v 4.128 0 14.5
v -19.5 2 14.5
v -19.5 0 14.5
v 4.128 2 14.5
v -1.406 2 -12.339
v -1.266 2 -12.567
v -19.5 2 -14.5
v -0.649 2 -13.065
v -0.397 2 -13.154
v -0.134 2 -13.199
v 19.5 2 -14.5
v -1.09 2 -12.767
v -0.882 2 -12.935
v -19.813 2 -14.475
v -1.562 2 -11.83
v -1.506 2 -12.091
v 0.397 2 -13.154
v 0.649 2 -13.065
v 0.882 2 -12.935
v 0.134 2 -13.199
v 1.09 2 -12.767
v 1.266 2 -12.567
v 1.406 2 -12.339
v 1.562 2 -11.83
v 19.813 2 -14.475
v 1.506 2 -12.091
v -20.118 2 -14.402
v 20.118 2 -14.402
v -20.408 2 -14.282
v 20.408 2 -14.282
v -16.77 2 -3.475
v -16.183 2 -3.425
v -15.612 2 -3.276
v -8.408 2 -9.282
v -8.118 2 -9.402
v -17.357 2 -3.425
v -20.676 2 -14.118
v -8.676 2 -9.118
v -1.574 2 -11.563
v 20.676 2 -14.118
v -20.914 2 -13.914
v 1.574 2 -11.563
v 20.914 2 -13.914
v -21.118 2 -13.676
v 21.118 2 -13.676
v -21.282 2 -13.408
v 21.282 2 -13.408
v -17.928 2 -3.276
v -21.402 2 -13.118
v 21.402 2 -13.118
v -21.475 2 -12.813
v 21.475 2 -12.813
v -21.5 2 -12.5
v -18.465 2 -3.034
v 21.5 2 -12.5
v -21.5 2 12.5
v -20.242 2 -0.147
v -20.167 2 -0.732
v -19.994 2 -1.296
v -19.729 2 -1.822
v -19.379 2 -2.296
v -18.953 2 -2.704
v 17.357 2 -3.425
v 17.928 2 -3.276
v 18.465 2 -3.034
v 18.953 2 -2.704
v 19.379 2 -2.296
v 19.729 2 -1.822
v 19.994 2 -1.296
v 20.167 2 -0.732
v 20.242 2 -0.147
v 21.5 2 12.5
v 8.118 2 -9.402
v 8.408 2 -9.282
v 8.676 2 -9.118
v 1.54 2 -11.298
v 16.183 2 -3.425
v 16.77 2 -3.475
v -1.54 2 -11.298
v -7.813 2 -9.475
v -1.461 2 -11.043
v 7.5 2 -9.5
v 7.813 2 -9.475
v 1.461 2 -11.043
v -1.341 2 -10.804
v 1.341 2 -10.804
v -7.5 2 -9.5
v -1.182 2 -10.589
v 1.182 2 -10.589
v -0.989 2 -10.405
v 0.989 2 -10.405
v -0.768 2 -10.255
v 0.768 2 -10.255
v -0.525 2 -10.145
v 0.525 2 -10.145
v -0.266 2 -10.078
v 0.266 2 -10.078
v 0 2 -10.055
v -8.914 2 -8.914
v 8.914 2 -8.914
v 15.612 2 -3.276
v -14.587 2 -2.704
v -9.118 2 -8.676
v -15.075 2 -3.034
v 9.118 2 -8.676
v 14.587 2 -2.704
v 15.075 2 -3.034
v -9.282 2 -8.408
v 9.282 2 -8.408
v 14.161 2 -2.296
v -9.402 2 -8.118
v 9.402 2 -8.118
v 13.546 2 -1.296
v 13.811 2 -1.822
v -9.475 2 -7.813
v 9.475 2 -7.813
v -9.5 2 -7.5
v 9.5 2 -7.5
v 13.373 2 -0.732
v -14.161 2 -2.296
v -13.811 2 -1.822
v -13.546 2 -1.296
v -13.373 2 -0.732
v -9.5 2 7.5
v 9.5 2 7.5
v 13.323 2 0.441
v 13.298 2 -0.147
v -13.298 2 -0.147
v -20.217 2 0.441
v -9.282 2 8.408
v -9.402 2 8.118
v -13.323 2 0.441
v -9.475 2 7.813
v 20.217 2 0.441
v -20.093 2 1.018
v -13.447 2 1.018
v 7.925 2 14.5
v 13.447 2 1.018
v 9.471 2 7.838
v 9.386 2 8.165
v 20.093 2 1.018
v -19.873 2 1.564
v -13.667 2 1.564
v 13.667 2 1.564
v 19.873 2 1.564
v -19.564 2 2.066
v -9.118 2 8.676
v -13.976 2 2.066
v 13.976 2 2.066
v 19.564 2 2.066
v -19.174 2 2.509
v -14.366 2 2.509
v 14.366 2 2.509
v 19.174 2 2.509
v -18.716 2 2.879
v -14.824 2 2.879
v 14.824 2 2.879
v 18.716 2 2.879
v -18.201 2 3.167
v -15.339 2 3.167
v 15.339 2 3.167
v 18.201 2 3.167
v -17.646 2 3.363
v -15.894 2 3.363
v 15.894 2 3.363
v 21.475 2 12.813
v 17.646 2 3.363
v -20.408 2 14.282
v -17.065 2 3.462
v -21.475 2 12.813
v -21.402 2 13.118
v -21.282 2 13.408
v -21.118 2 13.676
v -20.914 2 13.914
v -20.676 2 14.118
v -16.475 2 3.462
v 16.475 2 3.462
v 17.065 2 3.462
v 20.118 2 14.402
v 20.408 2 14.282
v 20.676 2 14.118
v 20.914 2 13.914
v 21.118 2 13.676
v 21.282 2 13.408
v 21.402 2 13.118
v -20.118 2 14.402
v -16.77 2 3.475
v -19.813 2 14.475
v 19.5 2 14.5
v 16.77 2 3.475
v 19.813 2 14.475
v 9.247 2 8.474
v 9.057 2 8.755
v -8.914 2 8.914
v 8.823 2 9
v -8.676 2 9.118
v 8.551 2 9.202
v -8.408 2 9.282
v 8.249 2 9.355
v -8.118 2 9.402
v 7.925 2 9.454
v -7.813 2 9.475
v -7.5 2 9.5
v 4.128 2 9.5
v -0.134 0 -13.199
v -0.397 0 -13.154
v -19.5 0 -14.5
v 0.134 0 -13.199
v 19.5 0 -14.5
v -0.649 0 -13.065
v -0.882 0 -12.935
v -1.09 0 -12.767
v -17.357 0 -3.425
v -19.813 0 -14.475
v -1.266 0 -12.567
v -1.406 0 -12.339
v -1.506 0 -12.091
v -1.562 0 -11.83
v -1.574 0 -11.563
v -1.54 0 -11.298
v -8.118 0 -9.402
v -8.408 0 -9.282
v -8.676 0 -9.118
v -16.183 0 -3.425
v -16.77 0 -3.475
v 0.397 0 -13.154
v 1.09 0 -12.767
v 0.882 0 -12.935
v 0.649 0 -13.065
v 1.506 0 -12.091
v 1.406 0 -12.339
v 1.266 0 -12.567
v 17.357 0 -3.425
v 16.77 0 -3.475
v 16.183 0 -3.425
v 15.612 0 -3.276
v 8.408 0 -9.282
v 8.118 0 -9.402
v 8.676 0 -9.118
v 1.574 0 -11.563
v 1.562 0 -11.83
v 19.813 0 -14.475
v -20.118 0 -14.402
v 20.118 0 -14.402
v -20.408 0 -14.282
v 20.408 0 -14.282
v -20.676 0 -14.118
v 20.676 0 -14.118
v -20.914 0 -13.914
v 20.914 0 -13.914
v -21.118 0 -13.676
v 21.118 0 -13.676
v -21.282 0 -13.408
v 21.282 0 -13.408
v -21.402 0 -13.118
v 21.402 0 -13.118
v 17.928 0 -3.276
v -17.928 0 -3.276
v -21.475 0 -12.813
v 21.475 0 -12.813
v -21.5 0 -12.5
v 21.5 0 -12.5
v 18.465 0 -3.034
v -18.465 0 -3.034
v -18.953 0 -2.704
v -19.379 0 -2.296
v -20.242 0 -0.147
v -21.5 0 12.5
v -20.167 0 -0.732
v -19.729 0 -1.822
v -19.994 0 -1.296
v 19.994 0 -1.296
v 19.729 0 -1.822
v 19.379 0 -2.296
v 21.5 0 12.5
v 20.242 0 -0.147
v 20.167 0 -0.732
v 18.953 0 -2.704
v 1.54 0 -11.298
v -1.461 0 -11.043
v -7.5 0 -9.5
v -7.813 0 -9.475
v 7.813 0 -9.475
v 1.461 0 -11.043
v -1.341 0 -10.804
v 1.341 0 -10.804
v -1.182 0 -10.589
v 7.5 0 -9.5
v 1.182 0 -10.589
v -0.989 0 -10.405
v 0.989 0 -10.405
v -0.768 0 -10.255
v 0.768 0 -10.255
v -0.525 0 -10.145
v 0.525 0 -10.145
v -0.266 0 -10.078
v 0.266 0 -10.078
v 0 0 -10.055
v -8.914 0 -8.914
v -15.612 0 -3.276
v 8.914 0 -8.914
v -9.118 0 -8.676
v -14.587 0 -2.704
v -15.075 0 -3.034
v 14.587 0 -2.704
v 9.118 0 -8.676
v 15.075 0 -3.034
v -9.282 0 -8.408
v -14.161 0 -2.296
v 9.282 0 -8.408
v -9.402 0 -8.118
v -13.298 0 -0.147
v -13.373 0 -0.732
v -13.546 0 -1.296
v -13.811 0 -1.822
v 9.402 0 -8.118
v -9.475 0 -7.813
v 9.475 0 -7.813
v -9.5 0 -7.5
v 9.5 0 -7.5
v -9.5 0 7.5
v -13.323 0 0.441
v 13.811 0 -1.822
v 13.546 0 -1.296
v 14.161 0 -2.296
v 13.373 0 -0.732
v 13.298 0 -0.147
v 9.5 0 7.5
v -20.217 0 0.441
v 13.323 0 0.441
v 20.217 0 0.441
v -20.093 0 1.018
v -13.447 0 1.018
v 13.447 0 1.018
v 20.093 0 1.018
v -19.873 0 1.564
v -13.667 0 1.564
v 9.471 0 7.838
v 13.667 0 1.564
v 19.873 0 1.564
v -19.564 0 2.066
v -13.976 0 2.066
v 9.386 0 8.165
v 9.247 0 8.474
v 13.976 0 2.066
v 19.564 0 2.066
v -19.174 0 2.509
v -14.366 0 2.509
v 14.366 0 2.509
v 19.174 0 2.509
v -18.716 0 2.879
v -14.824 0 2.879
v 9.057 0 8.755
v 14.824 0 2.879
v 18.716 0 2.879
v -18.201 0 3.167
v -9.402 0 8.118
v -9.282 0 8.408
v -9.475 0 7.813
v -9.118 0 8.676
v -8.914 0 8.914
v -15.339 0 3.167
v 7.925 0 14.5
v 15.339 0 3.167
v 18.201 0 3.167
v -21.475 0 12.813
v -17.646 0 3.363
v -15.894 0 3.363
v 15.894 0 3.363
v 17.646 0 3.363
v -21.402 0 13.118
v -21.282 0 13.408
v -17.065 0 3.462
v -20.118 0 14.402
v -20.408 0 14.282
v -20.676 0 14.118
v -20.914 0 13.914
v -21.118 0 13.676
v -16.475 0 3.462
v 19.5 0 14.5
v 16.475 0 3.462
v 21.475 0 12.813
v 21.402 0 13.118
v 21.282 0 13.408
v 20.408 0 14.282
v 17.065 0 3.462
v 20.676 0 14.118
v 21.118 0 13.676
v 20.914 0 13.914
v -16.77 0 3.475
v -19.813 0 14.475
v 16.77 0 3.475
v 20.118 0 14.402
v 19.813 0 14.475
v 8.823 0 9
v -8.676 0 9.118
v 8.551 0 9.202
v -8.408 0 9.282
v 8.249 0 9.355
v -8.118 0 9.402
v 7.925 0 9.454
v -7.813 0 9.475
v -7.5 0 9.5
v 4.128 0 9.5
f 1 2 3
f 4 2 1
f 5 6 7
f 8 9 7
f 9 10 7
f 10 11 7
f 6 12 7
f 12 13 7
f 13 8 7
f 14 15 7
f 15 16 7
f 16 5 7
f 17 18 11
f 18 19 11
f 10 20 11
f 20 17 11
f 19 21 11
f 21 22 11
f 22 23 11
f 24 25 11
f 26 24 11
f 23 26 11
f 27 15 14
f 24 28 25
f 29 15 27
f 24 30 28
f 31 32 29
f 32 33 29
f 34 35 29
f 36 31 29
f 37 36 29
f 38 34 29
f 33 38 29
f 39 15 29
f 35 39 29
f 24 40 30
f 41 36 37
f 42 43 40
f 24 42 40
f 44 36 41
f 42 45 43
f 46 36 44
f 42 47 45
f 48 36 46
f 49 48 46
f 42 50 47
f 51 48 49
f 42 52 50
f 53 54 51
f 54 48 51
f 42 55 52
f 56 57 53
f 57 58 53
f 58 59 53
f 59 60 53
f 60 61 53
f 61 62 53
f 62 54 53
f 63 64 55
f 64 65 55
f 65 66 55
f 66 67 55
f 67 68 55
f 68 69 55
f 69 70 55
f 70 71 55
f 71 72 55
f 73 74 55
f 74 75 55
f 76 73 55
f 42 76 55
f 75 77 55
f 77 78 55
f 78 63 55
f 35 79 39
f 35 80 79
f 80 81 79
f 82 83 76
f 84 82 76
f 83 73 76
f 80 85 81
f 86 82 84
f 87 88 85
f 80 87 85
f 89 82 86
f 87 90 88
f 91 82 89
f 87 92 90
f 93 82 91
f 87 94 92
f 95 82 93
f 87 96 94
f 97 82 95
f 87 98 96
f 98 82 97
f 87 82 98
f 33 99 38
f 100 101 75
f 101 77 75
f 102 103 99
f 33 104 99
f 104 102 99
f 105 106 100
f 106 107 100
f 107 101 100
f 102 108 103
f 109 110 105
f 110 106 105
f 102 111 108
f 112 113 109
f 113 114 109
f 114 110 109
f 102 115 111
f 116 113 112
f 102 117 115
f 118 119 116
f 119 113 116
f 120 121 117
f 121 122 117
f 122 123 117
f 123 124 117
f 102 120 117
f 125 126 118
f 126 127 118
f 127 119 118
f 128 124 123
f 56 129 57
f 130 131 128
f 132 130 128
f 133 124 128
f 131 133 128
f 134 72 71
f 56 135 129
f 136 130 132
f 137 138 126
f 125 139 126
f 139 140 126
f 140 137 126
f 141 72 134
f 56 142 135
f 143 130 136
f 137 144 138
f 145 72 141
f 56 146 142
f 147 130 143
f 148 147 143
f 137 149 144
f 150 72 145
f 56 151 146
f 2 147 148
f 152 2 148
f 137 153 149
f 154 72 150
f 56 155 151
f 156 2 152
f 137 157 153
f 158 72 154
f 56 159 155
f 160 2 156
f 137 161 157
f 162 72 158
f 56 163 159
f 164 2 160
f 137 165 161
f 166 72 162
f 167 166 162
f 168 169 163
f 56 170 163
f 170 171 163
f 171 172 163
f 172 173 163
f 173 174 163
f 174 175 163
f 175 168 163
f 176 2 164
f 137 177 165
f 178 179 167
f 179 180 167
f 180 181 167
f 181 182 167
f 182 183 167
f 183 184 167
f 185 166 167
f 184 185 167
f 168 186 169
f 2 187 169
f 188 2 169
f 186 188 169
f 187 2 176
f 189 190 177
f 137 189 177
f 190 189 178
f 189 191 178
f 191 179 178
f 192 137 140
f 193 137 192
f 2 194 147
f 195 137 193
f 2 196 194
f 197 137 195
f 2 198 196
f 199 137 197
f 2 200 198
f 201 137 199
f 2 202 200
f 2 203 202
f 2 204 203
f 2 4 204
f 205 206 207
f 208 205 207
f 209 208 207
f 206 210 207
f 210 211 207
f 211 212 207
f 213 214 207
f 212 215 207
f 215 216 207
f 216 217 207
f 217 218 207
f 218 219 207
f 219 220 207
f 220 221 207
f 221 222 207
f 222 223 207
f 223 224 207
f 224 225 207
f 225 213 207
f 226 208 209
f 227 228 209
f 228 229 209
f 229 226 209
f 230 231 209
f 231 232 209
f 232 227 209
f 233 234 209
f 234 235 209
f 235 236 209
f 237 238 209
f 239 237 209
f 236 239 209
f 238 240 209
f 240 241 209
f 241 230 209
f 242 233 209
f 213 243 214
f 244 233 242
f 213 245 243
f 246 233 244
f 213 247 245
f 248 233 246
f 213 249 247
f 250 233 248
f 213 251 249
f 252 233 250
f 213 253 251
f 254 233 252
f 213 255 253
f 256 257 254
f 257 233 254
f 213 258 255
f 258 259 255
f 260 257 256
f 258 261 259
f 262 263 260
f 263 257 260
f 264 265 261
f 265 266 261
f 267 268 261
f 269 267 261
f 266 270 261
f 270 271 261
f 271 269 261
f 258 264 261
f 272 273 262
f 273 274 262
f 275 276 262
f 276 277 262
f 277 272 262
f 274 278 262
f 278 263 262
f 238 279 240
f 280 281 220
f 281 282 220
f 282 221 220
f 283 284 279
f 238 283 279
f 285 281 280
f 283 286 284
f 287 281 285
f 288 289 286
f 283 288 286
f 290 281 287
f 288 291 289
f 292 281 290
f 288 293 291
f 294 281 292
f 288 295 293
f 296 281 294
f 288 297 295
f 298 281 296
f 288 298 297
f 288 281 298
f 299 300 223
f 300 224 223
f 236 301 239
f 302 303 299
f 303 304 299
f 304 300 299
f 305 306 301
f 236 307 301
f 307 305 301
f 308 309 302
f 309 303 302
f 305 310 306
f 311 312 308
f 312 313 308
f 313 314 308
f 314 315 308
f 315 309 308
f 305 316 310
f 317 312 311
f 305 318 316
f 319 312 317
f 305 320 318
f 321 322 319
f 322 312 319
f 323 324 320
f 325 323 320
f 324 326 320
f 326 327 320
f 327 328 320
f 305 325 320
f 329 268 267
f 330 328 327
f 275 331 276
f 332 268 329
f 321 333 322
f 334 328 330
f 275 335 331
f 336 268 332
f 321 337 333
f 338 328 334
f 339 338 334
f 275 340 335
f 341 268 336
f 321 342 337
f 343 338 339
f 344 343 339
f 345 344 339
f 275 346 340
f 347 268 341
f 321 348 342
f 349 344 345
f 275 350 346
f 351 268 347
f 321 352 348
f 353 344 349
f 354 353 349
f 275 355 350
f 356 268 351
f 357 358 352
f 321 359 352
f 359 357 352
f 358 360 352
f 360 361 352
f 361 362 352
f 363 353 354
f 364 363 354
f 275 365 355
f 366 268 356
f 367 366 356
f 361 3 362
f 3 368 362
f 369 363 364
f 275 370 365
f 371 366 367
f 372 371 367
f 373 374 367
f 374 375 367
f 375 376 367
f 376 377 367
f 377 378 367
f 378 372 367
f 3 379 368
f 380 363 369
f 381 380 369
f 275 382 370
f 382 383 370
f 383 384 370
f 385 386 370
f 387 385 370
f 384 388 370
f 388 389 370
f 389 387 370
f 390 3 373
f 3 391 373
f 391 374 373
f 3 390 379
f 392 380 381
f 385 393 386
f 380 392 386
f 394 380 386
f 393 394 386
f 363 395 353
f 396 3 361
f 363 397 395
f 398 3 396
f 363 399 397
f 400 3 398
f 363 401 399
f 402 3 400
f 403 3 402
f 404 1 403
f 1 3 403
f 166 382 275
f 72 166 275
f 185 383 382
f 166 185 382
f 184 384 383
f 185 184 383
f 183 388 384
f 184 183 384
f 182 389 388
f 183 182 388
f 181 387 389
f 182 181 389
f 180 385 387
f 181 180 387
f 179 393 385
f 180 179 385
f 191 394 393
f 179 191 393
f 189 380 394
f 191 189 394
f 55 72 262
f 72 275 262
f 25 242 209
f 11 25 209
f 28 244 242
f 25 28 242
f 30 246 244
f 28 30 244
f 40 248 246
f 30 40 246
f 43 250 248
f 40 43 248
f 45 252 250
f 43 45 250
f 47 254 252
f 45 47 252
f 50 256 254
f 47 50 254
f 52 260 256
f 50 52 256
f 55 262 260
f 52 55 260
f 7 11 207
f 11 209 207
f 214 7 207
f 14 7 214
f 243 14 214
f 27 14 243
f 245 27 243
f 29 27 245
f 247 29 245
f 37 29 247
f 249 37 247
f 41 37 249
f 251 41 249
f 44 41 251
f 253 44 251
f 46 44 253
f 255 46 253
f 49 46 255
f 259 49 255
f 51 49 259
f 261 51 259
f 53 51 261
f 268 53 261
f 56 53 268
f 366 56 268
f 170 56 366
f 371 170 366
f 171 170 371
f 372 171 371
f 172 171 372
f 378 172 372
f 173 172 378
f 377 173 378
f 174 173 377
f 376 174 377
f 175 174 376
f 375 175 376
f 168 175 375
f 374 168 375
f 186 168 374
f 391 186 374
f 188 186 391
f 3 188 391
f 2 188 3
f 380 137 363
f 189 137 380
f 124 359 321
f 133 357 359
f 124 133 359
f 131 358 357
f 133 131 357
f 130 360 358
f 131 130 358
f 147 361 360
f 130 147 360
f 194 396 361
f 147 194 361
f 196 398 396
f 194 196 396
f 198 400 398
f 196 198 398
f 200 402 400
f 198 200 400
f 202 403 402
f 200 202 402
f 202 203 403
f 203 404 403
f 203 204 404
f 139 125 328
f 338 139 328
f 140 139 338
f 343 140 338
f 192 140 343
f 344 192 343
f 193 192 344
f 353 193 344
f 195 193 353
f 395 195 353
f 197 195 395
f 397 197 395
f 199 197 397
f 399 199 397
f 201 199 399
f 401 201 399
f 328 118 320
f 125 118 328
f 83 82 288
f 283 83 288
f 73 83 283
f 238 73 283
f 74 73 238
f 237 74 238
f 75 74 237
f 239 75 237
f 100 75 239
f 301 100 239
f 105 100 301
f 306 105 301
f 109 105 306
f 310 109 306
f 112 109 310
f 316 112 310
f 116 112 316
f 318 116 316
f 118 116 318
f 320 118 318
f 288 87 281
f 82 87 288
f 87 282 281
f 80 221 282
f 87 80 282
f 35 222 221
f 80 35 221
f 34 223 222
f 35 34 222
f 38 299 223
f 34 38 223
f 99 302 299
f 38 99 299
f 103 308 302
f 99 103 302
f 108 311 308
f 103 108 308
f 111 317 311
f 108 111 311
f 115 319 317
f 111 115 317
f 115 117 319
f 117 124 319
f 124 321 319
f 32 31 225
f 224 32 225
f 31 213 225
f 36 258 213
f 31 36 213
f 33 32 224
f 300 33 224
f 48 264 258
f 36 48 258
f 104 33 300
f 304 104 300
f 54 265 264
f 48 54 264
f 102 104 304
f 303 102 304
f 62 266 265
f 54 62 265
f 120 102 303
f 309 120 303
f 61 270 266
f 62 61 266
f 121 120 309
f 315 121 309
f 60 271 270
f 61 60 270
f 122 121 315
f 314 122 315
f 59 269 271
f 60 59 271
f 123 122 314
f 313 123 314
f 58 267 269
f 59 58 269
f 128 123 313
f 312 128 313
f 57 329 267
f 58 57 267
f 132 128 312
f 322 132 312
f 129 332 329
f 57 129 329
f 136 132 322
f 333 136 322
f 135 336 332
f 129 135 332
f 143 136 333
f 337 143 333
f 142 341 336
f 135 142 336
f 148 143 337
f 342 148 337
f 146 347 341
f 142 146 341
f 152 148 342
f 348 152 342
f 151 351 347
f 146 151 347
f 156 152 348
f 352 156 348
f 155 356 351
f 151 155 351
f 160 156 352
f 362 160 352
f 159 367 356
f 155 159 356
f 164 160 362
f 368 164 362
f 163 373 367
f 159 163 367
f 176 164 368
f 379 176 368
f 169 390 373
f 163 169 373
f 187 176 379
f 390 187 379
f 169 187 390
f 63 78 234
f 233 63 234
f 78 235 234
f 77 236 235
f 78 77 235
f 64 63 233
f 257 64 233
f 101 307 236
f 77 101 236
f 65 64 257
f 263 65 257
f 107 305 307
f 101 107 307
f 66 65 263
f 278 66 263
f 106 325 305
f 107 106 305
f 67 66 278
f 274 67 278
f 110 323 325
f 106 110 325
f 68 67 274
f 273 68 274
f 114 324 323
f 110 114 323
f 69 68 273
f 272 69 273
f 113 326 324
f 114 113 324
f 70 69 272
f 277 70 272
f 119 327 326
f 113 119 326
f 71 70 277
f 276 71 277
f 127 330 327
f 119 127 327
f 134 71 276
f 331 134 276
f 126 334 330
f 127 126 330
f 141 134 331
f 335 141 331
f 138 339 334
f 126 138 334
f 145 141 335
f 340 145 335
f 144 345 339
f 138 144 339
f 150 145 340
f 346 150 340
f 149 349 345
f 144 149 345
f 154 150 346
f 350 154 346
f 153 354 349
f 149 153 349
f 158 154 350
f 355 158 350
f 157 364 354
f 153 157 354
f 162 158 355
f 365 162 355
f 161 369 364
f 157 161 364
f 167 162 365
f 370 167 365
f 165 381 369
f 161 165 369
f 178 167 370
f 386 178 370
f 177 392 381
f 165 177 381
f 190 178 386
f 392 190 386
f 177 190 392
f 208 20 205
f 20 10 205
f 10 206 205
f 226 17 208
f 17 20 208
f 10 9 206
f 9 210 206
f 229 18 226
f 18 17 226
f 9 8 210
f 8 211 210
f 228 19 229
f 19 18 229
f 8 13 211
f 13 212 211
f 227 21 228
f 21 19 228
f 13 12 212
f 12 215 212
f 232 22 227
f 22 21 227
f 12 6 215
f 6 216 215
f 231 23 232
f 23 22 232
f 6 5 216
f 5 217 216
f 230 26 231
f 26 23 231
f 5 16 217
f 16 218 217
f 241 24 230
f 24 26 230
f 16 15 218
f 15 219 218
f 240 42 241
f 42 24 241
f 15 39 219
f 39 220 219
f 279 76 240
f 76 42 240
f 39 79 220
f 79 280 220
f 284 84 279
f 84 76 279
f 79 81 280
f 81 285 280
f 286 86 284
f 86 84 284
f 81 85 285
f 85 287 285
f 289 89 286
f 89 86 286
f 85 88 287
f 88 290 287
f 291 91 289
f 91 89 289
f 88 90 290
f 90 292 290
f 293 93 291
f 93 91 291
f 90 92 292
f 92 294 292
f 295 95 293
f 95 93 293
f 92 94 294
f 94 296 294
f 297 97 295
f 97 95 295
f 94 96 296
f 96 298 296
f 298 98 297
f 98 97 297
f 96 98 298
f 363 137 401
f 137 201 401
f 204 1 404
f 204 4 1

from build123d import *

# Parameters (mm, degrees)
SKETCH1_R           = 3.475
BOSS_EXTRUDE1_DEPTH = 2
SKETCH2_R           = 1.575
CUT_EXTRUDE1_DEPTH  = 27.009613607
SKETCH3_W           = 3.796627216
SKETCH3_H           = 5.505702191
CUT_EXTRUDE2_DEPTH  = 27.009613607


with BuildPart() as part:
    # Sketch1 → Boss-Extrude1 (new body)
    with BuildSketch(Plane(origin=(0, 0, 0), x_dir=(1, 0, 0), z_dir=(0, 1, 0))):
        with BuildLine():
            Line((-19.5, -14.5), (19.5, -14.5))
            ThreePointArc((19.5, -14.5), (20.914213562, -13.914213562), (21.5, -12.5))
            Line((21.5, -12.5), (21.5, 12.5))
            ThreePointArc((21.5, 12.5), (20.914213562, 13.914213562), (19.5, 14.5))
            Line((19.5, 14.5), (-19.5, 14.5))
            ThreePointArc((-19.5, 14.5), (-20.914213562, 13.914213562), (-21.5, 12.5))
            Line((-21.5, 12.5), (-21.5, -12.5))
            ThreePointArc((-21.5, -12.5), (-20.914213562, -13.914213562), (-19.5, -14.5))
        make_face()
        with Locations(Location((-16.77, 0, 0), (0, 0, 270))):
            Circle(SKETCH1_R, mode=Mode.SUBTRACT)
        with Locations(Location((16.77, 0, 0), (0, 0, 270))):
            Circle(SKETCH1_R, mode=Mode.SUBTRACT)
        with BuildLine():
            Line((-7.5, -9.5), (7.5, -9.5))
            ThreePointArc((7.5, -9.5), (8.914213562, -8.914213562), (9.5, -7.5))
            Line((9.5, -7.5), (9.5, 7.5))
            ThreePointArc((9.5, 7.5), (8.914213562, 8.914213562), (7.5, 9.5))
            Line((7.5, 9.5), (-7.5, 9.5))
            ThreePointArc((-7.5, 9.5), (-8.914213562, 8.914213562), (-9.5, 7.5))
            Line((-9.5, 7.5), (-9.5, -7.5))
            ThreePointArc((-9.5, -7.5), (-8.914213562, -8.914213562), (-7.5, -9.5))
        make_face(mode=Mode.SUBTRACT)
    extrude(amount=BOSS_EXTRUDE1_DEPTH)

    # Sketch2 → Cut-Extrude1 (cut, through all)
    with BuildSketch(Plane(origin=(0, 2, 0), x_dir=(1, 0, 0), z_dir=(0, 1, 0))):
        with Locations(Location((0, 11.63, 0), (0, 0, 270))):
            Circle(SKETCH2_R)
    extrude(amount=-CUT_EXTRUDE1_DEPTH, mode=Mode.SUBTRACT)

    # Sketch3 → Cut-Extrude2 (cut, through all)
    with BuildSketch(Plane(origin=(0, 2, 0), x_dir=(1, 0, 0), z_dir=(0, 1, 0))):
        with Locations((6.026686392, -11.747148905)):
            Rectangle(SKETCH3_W, SKETCH3_H)
    extrude(amount=-CUT_EXTRUDE2_DEPTH, mode=Mode.SUBTRACT)


solid = part.part
